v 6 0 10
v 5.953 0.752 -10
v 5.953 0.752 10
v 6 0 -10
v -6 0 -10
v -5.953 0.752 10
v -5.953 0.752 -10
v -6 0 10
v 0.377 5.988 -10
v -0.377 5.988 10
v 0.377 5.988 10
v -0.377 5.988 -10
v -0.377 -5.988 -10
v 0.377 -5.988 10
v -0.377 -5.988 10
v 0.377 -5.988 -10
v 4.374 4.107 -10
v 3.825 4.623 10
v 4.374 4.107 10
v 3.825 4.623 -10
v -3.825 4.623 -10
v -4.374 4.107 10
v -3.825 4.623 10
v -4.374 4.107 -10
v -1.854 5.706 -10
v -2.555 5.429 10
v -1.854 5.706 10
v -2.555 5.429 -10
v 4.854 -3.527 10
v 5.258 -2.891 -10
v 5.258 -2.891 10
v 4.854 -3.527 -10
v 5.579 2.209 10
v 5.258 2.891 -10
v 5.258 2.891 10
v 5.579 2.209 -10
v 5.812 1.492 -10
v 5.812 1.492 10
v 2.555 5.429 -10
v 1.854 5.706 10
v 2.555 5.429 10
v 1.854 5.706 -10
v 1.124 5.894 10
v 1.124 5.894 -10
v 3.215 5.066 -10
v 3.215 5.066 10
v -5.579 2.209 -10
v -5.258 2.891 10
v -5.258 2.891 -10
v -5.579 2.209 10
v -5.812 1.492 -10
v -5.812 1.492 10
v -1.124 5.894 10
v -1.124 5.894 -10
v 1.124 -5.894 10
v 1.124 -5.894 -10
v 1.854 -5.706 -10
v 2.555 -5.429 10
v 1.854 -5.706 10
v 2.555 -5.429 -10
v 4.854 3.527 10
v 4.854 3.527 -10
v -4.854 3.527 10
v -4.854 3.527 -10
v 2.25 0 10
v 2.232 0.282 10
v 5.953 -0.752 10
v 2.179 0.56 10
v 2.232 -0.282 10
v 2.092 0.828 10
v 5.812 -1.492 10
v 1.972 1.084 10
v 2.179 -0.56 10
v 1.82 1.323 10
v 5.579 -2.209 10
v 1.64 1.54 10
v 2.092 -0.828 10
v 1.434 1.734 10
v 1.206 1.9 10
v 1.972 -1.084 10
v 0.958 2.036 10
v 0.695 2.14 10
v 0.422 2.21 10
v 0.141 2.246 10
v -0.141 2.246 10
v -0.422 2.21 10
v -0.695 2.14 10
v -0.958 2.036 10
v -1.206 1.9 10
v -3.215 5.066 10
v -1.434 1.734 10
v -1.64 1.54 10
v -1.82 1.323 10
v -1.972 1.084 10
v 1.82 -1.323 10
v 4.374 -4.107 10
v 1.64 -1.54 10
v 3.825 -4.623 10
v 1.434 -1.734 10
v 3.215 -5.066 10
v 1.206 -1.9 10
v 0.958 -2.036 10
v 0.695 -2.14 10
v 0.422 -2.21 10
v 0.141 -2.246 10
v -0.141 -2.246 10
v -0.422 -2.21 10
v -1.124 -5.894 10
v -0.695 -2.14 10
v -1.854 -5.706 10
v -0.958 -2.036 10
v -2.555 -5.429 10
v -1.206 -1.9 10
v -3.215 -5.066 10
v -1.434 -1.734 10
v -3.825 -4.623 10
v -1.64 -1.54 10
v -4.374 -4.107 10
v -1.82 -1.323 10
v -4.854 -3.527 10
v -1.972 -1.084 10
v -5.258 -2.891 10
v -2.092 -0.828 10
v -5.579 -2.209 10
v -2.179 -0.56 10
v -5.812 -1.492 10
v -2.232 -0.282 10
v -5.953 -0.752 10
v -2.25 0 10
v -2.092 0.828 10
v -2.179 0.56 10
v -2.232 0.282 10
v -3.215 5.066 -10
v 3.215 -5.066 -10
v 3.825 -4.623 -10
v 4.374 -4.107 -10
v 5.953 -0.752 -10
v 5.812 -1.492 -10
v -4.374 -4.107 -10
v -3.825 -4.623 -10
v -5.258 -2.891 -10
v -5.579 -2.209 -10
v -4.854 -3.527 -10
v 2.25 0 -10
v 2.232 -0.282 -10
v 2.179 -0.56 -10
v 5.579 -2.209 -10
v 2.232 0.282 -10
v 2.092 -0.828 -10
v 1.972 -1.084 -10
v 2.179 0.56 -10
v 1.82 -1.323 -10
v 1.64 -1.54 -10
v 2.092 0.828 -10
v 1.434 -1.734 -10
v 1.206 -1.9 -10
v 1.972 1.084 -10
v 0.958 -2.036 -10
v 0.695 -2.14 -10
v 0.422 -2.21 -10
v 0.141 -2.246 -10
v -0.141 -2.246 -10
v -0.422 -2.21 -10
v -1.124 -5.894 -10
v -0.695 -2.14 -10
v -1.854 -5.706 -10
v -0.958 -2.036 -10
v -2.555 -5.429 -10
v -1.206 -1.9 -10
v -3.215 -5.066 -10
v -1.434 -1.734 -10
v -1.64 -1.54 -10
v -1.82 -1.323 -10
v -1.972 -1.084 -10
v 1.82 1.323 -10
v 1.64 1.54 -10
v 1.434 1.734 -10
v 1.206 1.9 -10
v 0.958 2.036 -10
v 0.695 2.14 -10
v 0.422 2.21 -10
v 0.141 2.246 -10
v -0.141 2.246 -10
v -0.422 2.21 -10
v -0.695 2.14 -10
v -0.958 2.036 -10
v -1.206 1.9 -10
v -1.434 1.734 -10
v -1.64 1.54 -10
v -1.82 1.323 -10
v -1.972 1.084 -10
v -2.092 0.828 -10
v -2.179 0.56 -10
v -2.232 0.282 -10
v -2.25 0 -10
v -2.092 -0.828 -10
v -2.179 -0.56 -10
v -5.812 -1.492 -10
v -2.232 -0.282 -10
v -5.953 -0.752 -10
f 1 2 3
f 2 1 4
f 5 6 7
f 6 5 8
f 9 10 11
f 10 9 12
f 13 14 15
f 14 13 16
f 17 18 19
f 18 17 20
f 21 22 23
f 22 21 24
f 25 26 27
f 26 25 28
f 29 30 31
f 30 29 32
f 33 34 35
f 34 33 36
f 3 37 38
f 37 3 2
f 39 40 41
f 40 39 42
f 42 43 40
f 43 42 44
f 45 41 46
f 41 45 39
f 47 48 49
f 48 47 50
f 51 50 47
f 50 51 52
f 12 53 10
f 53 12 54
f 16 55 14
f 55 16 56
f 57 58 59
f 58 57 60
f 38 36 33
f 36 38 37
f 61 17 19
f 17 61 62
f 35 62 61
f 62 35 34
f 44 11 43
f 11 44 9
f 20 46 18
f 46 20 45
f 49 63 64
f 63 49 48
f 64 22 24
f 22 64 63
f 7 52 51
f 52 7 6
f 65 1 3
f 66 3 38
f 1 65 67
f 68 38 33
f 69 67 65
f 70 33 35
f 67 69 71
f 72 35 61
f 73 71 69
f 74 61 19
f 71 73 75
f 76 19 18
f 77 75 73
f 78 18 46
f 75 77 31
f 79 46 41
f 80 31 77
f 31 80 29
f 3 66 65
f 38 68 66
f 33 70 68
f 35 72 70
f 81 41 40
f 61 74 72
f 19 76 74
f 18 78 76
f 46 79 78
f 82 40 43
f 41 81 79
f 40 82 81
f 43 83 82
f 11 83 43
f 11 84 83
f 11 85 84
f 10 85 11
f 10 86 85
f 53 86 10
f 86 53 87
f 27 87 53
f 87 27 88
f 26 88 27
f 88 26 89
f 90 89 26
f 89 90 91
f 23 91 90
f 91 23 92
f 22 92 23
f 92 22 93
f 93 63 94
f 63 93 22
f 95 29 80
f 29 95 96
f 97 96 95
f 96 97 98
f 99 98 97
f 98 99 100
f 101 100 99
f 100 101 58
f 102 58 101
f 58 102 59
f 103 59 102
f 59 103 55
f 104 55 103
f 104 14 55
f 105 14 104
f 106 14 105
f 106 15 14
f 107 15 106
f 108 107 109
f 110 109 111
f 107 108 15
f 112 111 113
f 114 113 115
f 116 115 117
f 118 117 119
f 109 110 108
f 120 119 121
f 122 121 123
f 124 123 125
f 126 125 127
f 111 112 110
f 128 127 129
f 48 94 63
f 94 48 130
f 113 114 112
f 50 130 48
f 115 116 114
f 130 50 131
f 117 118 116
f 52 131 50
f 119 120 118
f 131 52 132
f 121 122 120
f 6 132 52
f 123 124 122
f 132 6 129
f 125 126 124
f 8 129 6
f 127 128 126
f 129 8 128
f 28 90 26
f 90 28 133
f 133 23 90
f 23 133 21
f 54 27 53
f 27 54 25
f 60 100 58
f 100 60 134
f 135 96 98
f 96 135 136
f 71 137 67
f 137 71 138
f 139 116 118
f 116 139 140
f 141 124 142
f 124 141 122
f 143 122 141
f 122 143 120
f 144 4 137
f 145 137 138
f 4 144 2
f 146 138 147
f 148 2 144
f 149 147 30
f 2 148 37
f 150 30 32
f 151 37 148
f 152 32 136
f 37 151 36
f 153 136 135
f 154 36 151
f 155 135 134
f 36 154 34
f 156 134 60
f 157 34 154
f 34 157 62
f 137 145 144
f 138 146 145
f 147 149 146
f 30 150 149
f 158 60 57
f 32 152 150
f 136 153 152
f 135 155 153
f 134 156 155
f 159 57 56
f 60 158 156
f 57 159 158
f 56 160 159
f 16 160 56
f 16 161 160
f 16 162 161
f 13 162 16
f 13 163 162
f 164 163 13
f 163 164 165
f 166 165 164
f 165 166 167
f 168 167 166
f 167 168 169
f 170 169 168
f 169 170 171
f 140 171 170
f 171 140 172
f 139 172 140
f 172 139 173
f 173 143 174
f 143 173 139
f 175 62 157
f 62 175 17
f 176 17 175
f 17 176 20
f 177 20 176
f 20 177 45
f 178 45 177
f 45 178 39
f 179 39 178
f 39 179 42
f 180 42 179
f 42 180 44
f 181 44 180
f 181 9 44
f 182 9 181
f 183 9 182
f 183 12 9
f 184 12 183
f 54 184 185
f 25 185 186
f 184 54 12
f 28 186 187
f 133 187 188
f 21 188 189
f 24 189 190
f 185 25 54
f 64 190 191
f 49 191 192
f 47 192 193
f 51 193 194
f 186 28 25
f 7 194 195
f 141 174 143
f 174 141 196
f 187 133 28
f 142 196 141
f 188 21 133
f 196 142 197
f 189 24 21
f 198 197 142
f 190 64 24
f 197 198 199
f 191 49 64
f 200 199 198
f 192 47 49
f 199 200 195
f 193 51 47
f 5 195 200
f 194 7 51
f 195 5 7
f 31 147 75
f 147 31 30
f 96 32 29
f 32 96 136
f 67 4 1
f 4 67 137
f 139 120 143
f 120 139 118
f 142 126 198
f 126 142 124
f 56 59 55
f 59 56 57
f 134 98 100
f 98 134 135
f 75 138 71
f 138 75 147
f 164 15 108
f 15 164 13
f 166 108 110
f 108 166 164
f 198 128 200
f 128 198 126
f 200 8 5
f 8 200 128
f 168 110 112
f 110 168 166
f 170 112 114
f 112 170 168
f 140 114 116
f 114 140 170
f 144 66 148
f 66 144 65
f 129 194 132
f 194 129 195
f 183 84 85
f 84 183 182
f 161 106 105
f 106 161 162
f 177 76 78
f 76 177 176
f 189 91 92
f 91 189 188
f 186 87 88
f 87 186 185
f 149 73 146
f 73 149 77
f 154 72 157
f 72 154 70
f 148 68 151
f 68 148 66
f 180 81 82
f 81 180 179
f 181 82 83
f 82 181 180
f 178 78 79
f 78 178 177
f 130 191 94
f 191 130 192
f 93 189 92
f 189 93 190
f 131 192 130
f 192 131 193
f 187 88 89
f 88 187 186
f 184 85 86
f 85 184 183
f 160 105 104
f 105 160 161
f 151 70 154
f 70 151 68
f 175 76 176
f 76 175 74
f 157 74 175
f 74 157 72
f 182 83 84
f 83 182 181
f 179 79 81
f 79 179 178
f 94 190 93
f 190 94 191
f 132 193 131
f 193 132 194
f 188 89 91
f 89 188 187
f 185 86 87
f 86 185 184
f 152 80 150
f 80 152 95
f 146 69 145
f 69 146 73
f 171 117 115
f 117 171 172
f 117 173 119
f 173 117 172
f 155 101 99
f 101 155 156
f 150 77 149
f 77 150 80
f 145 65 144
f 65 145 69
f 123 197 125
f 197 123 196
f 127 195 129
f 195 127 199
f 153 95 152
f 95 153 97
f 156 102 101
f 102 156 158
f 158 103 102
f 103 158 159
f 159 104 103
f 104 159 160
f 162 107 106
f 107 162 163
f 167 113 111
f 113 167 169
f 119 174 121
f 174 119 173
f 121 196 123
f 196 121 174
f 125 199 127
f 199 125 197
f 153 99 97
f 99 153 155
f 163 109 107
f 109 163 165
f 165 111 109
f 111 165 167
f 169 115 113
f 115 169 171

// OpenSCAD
$fn = 50;


difference() {
	union() {
		translate(v = [0, 0, -10.0000000000]) {
			cylinder(h = 20, r = 6.0000000000);
		}
	}
	union() {
		translate(v = [0, 0, -100.0000000000]) {
			cylinder(h = 200, r = 2.2500000000);
		}
	}
}
